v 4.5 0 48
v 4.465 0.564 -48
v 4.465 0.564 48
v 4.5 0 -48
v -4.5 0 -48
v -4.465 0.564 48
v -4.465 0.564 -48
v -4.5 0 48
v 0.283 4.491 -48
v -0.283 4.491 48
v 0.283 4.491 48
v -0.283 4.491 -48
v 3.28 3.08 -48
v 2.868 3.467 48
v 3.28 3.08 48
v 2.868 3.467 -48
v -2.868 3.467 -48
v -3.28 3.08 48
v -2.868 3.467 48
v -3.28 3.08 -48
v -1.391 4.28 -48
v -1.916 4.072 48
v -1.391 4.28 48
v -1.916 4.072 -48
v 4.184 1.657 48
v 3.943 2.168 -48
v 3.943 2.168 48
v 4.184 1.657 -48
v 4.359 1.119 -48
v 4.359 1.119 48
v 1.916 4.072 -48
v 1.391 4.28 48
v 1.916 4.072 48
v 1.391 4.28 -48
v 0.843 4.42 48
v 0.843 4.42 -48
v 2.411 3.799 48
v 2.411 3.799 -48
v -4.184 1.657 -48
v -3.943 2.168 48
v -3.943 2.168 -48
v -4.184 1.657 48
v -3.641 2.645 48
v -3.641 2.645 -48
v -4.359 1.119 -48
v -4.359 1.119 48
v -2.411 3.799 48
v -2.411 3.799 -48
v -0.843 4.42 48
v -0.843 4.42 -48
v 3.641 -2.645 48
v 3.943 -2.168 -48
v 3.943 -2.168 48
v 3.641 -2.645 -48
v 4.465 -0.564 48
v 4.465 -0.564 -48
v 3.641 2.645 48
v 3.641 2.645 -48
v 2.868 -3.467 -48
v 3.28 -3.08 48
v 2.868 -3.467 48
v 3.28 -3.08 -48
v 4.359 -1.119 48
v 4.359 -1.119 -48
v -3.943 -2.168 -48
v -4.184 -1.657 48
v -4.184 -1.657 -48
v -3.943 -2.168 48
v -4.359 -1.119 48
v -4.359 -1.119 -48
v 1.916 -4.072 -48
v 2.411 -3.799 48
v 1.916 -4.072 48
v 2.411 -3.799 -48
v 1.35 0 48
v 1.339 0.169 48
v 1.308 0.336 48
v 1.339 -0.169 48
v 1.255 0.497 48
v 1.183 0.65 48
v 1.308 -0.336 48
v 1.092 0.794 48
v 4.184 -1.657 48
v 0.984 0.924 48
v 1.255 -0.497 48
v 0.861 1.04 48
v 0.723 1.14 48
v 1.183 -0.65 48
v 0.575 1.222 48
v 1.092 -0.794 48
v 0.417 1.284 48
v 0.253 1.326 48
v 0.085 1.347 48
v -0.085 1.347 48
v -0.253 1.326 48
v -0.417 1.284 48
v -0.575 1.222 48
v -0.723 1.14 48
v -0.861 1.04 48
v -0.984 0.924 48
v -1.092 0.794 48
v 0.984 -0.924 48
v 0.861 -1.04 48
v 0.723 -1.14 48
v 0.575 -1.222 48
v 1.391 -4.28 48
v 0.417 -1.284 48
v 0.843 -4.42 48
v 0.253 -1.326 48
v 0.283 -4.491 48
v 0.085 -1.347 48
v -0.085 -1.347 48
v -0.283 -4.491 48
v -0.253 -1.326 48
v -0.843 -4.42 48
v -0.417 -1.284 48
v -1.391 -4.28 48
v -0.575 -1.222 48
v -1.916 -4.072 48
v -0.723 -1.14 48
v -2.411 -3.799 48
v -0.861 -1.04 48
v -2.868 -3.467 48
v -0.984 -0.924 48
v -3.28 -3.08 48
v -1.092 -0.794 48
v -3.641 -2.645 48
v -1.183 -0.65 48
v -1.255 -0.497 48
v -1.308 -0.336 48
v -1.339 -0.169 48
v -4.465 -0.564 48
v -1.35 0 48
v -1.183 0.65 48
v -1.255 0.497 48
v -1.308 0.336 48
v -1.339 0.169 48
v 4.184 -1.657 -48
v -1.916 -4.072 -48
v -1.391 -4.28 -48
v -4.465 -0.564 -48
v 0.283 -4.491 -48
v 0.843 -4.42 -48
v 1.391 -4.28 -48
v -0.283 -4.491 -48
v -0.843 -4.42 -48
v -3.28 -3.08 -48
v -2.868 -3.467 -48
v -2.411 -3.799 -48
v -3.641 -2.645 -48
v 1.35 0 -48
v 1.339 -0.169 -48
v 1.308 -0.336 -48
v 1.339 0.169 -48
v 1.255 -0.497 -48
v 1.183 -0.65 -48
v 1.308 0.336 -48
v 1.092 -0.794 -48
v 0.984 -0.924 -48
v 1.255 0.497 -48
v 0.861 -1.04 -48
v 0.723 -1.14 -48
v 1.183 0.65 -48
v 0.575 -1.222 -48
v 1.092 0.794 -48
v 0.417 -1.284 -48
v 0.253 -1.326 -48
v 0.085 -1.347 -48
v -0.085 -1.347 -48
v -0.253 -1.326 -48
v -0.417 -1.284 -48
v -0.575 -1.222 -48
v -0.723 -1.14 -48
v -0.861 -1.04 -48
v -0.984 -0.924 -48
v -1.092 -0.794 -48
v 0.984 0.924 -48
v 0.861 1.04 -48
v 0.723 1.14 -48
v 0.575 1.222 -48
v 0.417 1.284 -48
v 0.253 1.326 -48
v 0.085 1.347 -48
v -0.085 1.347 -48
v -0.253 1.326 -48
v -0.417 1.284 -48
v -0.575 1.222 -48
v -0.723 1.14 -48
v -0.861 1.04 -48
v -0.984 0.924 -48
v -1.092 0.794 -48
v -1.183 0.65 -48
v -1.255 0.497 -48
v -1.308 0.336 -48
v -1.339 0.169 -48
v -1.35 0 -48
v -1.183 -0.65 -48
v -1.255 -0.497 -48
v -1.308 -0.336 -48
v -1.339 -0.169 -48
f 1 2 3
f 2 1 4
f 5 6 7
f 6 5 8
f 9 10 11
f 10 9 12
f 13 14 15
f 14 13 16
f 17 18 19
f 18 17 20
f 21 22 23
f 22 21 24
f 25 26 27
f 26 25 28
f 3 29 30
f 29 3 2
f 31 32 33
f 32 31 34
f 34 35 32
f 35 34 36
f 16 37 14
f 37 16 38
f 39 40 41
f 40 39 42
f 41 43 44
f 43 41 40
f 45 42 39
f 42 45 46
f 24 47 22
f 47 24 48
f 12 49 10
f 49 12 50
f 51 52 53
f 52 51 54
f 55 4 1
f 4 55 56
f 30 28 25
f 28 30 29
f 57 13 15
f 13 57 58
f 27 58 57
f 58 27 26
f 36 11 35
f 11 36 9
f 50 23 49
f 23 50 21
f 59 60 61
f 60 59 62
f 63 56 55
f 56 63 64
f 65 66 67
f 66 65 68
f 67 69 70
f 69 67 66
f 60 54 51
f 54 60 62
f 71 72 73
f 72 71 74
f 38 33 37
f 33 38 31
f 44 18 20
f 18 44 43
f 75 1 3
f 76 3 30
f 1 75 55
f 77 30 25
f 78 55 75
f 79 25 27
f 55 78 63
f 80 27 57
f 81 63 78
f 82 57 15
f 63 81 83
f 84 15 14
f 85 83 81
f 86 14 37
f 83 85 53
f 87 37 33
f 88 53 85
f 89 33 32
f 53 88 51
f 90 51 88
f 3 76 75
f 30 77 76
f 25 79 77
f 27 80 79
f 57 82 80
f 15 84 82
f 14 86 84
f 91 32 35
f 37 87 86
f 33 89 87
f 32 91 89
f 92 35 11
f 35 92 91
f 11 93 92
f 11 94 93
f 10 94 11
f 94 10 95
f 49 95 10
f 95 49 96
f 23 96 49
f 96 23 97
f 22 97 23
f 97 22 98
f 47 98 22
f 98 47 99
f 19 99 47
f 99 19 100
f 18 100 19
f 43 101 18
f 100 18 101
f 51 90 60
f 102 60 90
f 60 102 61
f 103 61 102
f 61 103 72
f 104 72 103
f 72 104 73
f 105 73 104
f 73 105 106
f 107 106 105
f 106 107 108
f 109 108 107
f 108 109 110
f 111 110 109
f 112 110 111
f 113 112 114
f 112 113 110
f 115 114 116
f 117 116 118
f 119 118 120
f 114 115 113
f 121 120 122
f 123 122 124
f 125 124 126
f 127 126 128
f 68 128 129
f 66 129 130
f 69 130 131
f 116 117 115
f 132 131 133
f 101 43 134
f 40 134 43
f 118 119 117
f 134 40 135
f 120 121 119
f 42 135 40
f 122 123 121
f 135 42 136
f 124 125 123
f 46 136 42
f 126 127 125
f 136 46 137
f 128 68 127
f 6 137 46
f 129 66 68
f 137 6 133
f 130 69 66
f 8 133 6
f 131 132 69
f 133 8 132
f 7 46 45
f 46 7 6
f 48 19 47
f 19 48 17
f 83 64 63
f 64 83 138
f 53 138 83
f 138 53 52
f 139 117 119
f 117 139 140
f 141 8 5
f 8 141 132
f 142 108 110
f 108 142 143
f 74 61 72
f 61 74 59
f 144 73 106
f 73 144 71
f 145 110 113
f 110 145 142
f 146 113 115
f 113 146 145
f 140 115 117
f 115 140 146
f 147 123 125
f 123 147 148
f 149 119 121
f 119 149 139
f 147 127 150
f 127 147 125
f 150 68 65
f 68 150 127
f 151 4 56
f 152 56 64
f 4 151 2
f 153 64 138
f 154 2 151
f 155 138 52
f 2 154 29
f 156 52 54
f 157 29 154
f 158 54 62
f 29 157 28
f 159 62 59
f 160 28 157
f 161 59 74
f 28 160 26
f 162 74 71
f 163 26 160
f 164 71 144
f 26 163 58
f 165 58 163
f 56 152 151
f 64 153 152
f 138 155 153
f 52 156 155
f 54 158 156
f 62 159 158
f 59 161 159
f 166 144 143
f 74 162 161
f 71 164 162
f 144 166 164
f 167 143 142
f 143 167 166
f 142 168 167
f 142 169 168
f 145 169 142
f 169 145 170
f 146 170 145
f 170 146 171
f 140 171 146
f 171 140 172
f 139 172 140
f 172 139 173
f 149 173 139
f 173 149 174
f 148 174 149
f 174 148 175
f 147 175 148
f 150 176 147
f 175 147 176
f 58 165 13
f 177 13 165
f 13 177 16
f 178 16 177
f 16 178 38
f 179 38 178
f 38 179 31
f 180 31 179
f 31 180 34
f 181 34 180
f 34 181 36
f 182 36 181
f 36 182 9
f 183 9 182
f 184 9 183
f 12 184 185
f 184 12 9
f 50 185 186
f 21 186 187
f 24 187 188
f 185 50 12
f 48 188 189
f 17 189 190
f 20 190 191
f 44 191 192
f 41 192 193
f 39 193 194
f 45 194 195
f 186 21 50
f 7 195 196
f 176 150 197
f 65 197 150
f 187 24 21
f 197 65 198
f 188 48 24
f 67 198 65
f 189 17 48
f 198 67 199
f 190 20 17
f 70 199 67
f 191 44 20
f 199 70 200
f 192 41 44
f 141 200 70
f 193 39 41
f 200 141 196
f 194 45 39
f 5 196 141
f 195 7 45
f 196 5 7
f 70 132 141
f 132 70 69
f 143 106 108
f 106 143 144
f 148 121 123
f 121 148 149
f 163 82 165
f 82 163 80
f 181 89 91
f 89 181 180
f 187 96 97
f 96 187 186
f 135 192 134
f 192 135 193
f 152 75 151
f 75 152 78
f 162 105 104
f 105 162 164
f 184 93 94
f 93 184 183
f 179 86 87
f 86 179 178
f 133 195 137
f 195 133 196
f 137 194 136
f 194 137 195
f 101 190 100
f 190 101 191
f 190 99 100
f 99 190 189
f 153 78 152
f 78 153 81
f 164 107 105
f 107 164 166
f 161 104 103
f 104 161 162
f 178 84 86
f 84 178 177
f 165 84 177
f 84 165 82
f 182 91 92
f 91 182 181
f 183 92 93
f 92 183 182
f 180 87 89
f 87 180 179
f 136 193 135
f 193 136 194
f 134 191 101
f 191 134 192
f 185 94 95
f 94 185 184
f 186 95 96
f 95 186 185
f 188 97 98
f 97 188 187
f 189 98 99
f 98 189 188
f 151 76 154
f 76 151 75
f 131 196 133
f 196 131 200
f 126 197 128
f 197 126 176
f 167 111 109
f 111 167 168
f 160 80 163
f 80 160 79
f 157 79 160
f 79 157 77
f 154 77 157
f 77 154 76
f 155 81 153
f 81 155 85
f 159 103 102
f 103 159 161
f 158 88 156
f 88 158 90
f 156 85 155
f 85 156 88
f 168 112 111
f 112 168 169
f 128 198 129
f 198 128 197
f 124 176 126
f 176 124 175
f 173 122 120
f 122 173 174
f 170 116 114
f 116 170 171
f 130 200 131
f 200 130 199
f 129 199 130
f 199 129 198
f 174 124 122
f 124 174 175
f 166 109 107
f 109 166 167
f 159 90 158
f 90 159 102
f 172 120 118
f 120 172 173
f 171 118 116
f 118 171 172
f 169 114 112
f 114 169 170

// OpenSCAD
$fn = 50;


difference() {
	union() {
		translate(v = [0, 0, -48.0000000000]) {
			cylinder(h = 96, r = 4.5000000000);
		}
	}
	union() {
		translate(v = [0, 0, -100.0000000000]) {
			cylinder(h = 200, r = 1.3500000000);
		}
	}
}
